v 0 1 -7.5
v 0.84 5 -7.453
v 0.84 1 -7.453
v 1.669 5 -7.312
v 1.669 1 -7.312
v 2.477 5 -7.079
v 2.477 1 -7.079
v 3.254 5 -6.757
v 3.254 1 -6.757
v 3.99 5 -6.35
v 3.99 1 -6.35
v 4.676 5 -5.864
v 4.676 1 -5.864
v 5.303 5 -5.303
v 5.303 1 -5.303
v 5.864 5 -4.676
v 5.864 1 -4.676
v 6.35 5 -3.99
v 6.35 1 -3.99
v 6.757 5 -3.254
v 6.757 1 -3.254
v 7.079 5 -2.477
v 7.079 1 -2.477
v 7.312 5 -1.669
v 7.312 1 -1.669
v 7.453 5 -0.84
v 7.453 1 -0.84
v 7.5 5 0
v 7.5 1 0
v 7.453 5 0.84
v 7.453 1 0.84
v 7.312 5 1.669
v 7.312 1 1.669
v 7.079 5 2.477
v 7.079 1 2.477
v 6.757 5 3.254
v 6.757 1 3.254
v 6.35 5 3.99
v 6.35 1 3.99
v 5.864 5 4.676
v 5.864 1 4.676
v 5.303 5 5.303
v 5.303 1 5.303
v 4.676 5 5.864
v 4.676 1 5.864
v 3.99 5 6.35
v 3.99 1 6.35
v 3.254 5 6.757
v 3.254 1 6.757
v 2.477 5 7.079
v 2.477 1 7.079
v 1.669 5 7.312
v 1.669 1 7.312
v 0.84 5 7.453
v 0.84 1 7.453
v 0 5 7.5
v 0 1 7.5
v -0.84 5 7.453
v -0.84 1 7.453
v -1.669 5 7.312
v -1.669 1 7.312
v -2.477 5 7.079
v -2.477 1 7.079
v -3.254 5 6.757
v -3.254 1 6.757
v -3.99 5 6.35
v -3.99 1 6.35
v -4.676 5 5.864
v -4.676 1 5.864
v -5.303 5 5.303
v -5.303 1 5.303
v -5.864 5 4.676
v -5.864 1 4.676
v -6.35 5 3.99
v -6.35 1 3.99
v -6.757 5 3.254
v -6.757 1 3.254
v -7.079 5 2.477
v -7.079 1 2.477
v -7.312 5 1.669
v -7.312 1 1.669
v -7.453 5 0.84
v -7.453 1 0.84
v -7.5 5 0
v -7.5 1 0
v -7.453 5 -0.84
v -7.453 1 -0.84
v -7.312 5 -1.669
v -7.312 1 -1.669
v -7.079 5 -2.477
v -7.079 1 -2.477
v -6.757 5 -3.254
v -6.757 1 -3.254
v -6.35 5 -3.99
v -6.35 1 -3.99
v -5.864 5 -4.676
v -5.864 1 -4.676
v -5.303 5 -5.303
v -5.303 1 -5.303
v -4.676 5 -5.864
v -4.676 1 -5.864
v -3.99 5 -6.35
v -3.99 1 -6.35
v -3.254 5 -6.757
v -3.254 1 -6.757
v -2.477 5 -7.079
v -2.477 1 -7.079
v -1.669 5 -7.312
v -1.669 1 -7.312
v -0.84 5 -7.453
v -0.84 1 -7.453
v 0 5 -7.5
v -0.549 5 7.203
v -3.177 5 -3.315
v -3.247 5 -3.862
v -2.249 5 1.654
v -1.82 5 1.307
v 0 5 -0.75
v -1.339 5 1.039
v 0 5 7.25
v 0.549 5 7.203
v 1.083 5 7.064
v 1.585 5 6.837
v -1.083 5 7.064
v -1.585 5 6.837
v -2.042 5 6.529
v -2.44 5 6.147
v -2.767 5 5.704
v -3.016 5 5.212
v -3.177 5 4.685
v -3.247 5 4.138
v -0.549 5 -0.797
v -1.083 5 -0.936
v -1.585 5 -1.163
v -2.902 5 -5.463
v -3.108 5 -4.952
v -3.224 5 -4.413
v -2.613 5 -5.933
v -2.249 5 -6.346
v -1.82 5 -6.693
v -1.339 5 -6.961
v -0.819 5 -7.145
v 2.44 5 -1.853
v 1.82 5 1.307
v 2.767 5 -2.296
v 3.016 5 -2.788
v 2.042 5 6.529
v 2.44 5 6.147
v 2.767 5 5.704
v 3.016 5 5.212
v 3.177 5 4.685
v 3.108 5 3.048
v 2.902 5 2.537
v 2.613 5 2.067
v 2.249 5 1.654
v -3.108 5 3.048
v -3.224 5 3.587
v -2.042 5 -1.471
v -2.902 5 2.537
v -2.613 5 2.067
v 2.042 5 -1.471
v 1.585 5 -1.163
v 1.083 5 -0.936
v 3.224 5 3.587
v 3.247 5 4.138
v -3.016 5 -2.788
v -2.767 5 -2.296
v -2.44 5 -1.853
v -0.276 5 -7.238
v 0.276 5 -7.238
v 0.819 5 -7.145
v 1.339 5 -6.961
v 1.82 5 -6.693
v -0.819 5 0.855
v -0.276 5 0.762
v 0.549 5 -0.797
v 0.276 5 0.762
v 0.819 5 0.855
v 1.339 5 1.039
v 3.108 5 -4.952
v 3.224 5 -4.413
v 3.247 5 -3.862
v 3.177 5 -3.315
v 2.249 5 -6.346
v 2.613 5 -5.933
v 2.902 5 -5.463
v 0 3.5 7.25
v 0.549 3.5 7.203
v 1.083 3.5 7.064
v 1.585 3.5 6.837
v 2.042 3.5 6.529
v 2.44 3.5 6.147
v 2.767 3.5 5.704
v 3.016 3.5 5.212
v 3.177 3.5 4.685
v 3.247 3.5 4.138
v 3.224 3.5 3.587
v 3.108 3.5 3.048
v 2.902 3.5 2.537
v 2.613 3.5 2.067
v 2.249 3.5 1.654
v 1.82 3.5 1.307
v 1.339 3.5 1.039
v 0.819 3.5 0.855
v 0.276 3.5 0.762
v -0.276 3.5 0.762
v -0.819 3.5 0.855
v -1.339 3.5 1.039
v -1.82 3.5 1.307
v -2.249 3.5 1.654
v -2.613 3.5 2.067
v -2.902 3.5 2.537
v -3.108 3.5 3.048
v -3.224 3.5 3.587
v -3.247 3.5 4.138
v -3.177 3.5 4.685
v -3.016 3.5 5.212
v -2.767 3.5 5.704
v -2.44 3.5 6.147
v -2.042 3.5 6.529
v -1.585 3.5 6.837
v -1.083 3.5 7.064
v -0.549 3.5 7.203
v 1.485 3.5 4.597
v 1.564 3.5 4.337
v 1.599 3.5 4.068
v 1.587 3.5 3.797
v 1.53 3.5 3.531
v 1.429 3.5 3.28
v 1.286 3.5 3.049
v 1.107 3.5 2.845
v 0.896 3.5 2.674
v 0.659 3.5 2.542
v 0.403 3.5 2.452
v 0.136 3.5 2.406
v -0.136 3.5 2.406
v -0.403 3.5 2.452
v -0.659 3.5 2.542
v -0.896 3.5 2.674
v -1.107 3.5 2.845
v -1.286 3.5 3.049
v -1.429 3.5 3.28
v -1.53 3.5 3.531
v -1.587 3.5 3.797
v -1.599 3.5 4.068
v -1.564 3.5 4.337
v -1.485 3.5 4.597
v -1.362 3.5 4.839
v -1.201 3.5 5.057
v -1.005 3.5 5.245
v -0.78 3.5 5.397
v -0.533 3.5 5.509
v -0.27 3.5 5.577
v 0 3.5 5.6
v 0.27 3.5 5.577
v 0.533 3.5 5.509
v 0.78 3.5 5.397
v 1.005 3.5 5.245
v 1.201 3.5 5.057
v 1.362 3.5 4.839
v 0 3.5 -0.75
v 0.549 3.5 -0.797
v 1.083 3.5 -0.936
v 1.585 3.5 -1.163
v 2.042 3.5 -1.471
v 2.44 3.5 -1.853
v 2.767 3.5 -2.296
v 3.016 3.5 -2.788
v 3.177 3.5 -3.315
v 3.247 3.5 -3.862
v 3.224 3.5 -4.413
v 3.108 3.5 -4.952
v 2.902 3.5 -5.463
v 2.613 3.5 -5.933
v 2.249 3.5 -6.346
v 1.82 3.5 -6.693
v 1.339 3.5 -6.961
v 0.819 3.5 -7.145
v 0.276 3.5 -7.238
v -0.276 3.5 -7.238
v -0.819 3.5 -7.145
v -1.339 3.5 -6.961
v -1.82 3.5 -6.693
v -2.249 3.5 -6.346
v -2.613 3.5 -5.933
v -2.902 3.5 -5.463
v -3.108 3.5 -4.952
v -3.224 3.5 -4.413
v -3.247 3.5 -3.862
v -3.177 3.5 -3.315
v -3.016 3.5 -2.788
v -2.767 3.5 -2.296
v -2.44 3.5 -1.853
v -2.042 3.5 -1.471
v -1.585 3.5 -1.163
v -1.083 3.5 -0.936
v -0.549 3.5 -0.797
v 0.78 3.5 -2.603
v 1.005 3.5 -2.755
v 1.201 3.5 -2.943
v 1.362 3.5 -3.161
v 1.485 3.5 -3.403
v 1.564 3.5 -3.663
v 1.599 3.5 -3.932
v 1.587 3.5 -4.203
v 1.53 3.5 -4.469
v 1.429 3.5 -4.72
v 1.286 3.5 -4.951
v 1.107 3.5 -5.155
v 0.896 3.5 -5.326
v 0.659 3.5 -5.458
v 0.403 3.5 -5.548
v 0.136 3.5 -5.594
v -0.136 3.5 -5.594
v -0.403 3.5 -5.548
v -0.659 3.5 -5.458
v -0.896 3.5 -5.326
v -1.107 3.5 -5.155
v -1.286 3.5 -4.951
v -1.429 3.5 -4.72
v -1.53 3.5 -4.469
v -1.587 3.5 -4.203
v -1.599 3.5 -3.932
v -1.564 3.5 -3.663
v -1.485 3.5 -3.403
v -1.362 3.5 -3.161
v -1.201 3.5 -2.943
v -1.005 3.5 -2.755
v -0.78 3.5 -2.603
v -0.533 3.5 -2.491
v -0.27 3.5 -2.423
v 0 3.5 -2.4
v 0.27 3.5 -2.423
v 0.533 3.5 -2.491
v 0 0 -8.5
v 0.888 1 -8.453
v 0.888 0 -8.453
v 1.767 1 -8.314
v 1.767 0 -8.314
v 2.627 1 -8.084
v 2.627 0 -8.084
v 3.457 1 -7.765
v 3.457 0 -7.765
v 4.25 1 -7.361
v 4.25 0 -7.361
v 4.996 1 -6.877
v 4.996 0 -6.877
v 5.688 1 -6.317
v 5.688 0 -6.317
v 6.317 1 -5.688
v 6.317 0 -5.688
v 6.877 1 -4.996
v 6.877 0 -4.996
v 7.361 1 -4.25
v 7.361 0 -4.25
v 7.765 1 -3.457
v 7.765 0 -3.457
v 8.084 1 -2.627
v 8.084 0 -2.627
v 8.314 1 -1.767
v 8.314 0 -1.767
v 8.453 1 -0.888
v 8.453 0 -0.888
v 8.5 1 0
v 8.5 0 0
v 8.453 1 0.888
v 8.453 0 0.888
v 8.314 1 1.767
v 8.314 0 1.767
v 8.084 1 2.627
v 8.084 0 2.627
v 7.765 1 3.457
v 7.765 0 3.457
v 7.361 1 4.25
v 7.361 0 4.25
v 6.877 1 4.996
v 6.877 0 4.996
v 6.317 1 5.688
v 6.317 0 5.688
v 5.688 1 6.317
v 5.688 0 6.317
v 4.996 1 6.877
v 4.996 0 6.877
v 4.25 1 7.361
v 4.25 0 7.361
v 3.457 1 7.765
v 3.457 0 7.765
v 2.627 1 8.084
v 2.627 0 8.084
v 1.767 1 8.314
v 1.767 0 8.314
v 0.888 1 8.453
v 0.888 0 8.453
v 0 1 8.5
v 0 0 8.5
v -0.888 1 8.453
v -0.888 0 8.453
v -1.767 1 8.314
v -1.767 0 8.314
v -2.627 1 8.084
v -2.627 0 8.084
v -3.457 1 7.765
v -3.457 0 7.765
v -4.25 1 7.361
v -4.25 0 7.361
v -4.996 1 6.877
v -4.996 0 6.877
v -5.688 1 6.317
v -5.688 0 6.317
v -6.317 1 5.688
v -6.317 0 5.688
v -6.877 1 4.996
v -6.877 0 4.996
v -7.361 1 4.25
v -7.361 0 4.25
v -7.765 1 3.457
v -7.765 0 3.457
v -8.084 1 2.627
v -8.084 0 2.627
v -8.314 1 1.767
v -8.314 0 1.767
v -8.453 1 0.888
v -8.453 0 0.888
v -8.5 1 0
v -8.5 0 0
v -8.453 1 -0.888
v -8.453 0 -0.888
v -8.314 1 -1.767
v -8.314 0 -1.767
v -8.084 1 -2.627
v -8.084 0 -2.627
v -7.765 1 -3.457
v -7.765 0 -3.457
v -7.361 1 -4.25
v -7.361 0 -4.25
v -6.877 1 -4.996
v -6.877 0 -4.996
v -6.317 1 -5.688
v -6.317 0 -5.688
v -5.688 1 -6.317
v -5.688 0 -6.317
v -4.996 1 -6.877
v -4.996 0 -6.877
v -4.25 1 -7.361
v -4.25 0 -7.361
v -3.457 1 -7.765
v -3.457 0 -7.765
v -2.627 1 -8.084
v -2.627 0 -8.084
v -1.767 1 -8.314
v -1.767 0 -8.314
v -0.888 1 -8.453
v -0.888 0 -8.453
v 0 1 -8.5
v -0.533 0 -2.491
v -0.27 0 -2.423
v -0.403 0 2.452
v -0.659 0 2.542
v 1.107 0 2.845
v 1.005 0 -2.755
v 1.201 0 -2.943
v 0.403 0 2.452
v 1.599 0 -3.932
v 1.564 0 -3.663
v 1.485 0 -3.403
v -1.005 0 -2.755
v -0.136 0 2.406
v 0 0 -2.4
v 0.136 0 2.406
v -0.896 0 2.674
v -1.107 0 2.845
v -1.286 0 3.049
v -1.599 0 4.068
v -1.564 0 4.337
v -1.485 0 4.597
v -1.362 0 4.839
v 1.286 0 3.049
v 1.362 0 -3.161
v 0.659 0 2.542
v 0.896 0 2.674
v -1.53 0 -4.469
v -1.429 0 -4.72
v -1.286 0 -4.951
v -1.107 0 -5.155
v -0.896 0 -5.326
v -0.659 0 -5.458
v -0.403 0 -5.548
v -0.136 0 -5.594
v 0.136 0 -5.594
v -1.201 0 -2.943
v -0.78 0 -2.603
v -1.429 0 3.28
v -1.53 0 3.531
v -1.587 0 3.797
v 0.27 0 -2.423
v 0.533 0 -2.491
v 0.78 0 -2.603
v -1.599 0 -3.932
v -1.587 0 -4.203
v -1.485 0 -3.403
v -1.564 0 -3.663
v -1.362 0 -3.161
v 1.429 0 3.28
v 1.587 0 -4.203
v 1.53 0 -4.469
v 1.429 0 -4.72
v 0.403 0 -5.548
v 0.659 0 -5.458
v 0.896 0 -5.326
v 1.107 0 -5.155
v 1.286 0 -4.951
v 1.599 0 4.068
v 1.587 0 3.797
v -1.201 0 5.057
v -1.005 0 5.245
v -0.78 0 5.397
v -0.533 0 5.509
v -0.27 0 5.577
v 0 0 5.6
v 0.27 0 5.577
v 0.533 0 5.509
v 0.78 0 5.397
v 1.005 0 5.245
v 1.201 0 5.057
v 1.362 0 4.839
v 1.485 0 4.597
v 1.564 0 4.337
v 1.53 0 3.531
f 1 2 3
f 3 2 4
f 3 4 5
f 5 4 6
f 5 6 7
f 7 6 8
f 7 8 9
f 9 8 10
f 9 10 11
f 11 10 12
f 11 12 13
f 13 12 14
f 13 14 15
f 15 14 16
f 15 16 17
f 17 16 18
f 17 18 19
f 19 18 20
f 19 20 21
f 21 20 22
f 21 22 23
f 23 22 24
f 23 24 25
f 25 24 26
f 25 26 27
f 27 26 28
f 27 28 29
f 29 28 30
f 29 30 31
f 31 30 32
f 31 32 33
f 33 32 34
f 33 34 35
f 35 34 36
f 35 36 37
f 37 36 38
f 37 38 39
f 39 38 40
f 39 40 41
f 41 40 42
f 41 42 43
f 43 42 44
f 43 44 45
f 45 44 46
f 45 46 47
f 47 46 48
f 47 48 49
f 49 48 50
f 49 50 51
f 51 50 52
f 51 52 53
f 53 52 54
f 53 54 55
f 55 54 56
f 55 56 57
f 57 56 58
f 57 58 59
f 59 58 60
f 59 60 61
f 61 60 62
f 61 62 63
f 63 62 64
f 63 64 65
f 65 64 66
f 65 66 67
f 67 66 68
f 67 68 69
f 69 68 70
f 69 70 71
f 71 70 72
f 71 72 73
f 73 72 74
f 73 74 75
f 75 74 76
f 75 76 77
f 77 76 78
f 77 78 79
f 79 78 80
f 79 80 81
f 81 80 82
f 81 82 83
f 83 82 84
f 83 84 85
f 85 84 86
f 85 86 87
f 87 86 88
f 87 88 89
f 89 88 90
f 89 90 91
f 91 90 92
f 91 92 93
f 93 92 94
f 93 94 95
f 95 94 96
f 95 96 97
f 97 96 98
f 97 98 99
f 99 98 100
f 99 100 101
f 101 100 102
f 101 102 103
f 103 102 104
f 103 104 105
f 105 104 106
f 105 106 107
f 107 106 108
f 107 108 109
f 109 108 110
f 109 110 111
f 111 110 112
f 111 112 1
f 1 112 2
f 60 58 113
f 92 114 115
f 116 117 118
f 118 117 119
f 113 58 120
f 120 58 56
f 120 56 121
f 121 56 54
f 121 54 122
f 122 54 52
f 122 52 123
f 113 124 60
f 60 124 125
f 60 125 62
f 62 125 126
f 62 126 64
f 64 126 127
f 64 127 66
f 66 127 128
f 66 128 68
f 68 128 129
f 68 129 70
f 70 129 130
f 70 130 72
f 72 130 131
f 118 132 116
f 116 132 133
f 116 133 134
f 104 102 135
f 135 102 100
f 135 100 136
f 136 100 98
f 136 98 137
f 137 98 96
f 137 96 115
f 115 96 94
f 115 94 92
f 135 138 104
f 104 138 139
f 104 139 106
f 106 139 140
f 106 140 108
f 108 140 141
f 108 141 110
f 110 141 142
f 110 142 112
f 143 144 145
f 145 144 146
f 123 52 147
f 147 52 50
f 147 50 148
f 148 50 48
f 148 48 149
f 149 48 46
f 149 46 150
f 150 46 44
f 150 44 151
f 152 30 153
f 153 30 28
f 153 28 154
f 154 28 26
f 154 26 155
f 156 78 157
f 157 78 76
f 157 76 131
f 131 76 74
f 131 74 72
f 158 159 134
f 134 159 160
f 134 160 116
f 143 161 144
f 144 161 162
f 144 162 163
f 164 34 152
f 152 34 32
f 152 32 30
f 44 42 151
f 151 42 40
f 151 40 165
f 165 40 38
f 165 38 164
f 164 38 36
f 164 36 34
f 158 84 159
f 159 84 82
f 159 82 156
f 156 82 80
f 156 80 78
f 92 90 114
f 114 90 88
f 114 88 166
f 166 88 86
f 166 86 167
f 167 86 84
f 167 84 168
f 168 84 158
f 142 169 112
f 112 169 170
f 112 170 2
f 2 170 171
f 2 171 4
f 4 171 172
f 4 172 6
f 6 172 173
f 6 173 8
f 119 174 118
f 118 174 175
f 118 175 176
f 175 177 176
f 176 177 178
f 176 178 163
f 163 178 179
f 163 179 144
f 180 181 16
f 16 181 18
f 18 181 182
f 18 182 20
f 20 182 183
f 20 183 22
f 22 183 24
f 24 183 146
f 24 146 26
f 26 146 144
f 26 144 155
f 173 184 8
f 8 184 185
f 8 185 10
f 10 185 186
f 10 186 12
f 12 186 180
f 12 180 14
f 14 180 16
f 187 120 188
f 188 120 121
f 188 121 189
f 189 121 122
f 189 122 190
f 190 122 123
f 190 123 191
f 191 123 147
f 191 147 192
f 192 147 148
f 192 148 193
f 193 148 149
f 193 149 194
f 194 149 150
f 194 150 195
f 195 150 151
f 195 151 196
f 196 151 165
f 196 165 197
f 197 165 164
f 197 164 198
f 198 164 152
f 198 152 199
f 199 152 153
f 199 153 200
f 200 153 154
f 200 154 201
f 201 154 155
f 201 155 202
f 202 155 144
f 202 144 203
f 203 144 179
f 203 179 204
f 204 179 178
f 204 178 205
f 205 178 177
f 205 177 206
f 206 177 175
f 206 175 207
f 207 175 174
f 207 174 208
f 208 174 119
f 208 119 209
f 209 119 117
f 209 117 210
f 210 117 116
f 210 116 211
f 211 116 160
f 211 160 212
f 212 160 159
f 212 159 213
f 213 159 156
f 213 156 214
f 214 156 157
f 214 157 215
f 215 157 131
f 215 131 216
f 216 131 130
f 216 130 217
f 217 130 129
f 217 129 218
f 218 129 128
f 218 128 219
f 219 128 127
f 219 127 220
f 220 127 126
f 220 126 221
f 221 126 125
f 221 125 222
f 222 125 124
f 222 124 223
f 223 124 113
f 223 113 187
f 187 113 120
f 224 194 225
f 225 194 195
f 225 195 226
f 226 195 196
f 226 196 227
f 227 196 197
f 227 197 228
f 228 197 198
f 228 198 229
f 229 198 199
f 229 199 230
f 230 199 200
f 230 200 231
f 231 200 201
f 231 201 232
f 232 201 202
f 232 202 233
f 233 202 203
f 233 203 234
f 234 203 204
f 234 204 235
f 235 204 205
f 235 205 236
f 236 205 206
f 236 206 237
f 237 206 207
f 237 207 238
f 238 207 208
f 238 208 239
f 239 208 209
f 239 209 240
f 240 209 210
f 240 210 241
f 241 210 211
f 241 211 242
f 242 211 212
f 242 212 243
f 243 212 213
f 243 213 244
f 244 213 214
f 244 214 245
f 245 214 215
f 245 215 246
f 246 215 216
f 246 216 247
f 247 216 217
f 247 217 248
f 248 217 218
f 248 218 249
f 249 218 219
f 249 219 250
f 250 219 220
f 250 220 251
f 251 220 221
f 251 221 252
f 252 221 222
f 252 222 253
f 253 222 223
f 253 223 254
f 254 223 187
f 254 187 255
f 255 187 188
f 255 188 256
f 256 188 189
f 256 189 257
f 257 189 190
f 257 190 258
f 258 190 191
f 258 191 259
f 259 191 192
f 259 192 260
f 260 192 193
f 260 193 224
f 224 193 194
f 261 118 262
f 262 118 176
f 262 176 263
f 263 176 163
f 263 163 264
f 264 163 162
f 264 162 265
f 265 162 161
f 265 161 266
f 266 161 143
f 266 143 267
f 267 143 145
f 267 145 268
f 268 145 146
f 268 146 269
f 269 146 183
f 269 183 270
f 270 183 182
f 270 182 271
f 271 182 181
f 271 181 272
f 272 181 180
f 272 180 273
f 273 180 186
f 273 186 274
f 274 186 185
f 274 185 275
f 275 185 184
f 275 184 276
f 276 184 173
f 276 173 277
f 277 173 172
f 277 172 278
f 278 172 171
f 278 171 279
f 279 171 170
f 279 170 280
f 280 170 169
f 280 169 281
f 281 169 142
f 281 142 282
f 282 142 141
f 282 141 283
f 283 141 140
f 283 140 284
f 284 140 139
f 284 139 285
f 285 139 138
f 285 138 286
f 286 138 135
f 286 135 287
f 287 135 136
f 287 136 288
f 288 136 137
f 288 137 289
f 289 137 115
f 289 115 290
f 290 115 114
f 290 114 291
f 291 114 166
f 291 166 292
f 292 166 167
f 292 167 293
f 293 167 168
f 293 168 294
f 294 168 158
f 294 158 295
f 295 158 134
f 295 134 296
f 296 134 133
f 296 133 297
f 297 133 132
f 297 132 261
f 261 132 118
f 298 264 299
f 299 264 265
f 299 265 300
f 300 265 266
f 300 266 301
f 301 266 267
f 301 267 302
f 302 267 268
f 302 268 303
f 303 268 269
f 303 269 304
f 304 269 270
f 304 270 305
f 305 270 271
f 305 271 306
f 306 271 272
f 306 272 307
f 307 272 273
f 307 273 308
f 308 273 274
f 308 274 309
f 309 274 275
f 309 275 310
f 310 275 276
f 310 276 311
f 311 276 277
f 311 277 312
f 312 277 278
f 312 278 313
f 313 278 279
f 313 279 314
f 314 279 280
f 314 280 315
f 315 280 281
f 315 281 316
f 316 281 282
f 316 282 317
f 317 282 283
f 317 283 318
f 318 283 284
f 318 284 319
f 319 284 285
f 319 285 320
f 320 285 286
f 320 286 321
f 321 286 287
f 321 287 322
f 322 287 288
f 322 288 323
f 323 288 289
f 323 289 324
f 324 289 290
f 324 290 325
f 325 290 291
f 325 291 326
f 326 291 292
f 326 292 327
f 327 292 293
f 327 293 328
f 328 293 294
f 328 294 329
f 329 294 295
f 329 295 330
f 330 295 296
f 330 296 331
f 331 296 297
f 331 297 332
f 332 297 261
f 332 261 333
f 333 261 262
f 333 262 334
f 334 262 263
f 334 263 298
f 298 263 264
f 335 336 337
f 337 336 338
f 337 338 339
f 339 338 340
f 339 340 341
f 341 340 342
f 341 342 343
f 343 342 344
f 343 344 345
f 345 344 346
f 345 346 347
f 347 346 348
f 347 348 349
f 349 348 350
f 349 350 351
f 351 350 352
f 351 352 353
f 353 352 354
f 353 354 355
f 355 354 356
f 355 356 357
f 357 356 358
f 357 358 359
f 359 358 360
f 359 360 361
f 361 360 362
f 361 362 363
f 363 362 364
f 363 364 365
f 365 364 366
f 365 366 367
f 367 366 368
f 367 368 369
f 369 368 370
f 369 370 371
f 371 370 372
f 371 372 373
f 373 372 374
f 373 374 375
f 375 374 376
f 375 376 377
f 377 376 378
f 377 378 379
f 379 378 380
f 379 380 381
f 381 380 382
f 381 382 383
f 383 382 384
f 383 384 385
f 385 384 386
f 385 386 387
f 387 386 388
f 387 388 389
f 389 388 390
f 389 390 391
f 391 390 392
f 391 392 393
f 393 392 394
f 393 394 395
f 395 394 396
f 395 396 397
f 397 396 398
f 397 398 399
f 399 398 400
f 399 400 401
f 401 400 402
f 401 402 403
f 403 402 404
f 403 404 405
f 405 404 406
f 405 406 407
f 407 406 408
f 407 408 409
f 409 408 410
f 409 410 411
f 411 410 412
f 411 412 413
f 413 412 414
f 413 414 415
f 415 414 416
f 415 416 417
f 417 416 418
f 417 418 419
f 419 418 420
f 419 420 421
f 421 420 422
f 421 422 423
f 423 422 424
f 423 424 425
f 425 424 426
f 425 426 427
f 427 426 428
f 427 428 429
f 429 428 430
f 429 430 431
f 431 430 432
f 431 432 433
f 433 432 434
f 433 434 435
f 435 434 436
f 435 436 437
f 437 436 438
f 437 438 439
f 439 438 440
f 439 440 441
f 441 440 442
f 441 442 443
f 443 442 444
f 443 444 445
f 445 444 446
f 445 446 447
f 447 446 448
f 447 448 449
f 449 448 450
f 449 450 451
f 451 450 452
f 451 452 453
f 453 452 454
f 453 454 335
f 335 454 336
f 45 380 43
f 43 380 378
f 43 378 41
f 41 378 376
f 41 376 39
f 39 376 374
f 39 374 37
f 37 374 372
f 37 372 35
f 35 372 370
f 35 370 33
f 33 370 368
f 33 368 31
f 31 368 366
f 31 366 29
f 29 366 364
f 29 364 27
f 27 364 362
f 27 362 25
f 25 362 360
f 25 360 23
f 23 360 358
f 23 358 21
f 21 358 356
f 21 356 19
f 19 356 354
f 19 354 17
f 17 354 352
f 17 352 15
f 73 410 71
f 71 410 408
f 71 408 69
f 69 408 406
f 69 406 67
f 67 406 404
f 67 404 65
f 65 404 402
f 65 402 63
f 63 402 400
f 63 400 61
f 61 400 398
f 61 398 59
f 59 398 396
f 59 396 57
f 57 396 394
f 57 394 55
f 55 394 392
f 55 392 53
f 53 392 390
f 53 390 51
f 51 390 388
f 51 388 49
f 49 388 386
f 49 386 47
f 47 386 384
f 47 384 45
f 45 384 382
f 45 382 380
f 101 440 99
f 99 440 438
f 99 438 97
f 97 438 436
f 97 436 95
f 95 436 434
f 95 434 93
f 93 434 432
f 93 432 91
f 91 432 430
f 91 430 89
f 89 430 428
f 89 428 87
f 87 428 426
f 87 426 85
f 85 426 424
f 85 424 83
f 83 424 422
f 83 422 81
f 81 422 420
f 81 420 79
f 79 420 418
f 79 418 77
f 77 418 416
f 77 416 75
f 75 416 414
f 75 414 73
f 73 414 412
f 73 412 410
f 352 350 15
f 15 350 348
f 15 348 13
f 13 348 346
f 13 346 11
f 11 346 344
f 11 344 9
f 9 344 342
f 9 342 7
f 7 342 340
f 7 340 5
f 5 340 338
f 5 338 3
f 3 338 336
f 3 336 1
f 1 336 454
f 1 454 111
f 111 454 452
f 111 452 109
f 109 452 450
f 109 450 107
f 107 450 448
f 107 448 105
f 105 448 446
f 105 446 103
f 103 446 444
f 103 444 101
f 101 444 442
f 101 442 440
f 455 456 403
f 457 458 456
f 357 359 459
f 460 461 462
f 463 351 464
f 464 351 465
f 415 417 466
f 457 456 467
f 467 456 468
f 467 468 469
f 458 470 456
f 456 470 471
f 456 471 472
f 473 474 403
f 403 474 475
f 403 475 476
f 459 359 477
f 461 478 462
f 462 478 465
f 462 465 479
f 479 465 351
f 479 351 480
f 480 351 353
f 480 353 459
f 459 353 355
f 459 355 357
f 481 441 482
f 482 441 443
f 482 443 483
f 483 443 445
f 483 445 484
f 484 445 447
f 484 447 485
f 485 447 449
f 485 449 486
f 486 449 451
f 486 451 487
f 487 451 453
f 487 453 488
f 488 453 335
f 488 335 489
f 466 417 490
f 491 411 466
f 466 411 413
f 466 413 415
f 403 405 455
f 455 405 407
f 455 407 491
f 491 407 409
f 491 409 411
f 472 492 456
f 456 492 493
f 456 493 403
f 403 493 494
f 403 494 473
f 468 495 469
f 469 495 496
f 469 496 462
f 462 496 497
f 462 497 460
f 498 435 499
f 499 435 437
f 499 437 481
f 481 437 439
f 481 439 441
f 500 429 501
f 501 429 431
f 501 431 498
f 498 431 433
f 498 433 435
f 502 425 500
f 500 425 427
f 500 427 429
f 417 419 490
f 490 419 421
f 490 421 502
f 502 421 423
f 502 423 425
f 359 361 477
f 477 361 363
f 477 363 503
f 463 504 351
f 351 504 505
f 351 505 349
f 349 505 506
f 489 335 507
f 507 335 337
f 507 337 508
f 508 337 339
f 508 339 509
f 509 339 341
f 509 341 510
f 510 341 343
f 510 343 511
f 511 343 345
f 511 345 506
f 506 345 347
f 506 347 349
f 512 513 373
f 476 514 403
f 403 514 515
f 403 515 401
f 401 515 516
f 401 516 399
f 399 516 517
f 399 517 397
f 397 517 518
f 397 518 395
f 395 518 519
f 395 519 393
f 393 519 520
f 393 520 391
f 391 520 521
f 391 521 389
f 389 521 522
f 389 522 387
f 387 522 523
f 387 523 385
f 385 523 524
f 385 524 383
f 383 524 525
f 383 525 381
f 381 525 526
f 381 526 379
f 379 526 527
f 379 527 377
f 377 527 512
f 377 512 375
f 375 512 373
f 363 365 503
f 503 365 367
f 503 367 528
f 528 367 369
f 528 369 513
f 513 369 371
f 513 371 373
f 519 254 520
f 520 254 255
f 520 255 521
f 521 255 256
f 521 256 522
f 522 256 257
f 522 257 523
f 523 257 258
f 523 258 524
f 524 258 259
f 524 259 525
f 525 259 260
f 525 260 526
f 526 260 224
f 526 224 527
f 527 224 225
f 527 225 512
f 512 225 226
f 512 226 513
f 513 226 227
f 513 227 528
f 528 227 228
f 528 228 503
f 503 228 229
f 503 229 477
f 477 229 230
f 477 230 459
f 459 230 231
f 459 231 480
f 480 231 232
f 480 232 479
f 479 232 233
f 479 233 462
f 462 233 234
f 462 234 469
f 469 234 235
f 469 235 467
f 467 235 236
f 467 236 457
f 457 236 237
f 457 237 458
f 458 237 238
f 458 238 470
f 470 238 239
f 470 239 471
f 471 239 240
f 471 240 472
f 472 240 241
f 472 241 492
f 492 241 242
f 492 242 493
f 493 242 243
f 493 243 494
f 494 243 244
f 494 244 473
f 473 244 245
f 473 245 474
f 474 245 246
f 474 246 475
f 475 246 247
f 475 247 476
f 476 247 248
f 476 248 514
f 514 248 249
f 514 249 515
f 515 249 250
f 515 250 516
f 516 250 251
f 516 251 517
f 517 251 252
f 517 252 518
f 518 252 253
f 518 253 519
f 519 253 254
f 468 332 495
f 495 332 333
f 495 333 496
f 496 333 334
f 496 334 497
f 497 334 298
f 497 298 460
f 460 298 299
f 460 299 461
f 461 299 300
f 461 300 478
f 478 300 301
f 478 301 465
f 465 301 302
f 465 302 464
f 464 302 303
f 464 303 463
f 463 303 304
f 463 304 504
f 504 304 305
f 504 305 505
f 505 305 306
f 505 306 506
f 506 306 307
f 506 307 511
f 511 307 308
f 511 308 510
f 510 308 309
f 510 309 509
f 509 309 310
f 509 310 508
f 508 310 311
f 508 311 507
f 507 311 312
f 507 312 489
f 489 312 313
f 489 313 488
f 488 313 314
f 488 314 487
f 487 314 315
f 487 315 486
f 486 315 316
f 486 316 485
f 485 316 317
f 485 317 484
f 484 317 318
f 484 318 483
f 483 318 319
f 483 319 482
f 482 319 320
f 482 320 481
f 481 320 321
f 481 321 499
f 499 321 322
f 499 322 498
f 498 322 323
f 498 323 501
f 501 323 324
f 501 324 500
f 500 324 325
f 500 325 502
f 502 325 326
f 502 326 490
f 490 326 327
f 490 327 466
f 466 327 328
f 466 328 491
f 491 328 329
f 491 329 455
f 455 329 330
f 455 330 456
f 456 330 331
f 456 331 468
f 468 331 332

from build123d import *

# Parameters (mm, degrees)
SKETCH1_R           = 7.5
BOSS_EXTRUDE1_DEPTH = 5
SKETCH2_R           = 3.25
CUT_EXTRUDE1_DEPTH  = 1.5
SKETCH4_R           = 8.5
BOSS_EXTRUDE2_DEPTH = 1
SKETCH3_R           = 1.6
CUT_EXTRUDE2_DEPTH  = 14.019216566


with BuildPart() as part:
    # Sketch1 → Boss-Extrude1 (new body)
    with BuildSketch(Plane(origin=(0, 0, 0), x_dir=(1, 0, 0), z_dir=(0, 1, 0))):
        with Locations(Location((0, 0, 0), (0, 0, 270))):
            Circle(SKETCH1_R)
    extrude(amount=BOSS_EXTRUDE1_DEPTH)

    # Sketch2 → Cut-Extrude1 (cut)
    with BuildSketch(Plane(origin=(0, 5, 0), x_dir=(1, 0, 0), z_dir=(0, 1, 0))):
        with Locations(Location((0, 4, 0), (0, 0, 270))):
            Circle(SKETCH2_R)
        with Locations(Location((0, -4, 0), (0, 0, 270))):
            Circle(SKETCH2_R)
    extrude(amount=-CUT_EXTRUDE1_DEPTH, mode=Mode.SUBTRACT)

    # Sketch4 → Boss-Extrude2 (add)
    with BuildSketch(Plane.XZ):
        with Locations(Location((0, 0, 0), (0, 0, 270))):
            Circle(SKETCH4_R)
    extrude(amount=-BOSS_EXTRUDE2_DEPTH)

    # Sketch3 → Cut-Extrude2 (cut, through all)
    with BuildSketch(Plane(origin=(0, 5, 0), x_dir=(1, 0, 0), z_dir=(0, 1, 0))):
        with Locations(Location((0, 4, 0), (0, 0, 270))):
            Circle(SKETCH3_R)
        with Locations(Location((0, -4, 0), (0, 0, 270))):
            Circle(SKETCH3_R)
    extrude(amount=-CUT_EXTRUDE2_DEPTH, mode=Mode.SUBTRACT)


solid = part.part
